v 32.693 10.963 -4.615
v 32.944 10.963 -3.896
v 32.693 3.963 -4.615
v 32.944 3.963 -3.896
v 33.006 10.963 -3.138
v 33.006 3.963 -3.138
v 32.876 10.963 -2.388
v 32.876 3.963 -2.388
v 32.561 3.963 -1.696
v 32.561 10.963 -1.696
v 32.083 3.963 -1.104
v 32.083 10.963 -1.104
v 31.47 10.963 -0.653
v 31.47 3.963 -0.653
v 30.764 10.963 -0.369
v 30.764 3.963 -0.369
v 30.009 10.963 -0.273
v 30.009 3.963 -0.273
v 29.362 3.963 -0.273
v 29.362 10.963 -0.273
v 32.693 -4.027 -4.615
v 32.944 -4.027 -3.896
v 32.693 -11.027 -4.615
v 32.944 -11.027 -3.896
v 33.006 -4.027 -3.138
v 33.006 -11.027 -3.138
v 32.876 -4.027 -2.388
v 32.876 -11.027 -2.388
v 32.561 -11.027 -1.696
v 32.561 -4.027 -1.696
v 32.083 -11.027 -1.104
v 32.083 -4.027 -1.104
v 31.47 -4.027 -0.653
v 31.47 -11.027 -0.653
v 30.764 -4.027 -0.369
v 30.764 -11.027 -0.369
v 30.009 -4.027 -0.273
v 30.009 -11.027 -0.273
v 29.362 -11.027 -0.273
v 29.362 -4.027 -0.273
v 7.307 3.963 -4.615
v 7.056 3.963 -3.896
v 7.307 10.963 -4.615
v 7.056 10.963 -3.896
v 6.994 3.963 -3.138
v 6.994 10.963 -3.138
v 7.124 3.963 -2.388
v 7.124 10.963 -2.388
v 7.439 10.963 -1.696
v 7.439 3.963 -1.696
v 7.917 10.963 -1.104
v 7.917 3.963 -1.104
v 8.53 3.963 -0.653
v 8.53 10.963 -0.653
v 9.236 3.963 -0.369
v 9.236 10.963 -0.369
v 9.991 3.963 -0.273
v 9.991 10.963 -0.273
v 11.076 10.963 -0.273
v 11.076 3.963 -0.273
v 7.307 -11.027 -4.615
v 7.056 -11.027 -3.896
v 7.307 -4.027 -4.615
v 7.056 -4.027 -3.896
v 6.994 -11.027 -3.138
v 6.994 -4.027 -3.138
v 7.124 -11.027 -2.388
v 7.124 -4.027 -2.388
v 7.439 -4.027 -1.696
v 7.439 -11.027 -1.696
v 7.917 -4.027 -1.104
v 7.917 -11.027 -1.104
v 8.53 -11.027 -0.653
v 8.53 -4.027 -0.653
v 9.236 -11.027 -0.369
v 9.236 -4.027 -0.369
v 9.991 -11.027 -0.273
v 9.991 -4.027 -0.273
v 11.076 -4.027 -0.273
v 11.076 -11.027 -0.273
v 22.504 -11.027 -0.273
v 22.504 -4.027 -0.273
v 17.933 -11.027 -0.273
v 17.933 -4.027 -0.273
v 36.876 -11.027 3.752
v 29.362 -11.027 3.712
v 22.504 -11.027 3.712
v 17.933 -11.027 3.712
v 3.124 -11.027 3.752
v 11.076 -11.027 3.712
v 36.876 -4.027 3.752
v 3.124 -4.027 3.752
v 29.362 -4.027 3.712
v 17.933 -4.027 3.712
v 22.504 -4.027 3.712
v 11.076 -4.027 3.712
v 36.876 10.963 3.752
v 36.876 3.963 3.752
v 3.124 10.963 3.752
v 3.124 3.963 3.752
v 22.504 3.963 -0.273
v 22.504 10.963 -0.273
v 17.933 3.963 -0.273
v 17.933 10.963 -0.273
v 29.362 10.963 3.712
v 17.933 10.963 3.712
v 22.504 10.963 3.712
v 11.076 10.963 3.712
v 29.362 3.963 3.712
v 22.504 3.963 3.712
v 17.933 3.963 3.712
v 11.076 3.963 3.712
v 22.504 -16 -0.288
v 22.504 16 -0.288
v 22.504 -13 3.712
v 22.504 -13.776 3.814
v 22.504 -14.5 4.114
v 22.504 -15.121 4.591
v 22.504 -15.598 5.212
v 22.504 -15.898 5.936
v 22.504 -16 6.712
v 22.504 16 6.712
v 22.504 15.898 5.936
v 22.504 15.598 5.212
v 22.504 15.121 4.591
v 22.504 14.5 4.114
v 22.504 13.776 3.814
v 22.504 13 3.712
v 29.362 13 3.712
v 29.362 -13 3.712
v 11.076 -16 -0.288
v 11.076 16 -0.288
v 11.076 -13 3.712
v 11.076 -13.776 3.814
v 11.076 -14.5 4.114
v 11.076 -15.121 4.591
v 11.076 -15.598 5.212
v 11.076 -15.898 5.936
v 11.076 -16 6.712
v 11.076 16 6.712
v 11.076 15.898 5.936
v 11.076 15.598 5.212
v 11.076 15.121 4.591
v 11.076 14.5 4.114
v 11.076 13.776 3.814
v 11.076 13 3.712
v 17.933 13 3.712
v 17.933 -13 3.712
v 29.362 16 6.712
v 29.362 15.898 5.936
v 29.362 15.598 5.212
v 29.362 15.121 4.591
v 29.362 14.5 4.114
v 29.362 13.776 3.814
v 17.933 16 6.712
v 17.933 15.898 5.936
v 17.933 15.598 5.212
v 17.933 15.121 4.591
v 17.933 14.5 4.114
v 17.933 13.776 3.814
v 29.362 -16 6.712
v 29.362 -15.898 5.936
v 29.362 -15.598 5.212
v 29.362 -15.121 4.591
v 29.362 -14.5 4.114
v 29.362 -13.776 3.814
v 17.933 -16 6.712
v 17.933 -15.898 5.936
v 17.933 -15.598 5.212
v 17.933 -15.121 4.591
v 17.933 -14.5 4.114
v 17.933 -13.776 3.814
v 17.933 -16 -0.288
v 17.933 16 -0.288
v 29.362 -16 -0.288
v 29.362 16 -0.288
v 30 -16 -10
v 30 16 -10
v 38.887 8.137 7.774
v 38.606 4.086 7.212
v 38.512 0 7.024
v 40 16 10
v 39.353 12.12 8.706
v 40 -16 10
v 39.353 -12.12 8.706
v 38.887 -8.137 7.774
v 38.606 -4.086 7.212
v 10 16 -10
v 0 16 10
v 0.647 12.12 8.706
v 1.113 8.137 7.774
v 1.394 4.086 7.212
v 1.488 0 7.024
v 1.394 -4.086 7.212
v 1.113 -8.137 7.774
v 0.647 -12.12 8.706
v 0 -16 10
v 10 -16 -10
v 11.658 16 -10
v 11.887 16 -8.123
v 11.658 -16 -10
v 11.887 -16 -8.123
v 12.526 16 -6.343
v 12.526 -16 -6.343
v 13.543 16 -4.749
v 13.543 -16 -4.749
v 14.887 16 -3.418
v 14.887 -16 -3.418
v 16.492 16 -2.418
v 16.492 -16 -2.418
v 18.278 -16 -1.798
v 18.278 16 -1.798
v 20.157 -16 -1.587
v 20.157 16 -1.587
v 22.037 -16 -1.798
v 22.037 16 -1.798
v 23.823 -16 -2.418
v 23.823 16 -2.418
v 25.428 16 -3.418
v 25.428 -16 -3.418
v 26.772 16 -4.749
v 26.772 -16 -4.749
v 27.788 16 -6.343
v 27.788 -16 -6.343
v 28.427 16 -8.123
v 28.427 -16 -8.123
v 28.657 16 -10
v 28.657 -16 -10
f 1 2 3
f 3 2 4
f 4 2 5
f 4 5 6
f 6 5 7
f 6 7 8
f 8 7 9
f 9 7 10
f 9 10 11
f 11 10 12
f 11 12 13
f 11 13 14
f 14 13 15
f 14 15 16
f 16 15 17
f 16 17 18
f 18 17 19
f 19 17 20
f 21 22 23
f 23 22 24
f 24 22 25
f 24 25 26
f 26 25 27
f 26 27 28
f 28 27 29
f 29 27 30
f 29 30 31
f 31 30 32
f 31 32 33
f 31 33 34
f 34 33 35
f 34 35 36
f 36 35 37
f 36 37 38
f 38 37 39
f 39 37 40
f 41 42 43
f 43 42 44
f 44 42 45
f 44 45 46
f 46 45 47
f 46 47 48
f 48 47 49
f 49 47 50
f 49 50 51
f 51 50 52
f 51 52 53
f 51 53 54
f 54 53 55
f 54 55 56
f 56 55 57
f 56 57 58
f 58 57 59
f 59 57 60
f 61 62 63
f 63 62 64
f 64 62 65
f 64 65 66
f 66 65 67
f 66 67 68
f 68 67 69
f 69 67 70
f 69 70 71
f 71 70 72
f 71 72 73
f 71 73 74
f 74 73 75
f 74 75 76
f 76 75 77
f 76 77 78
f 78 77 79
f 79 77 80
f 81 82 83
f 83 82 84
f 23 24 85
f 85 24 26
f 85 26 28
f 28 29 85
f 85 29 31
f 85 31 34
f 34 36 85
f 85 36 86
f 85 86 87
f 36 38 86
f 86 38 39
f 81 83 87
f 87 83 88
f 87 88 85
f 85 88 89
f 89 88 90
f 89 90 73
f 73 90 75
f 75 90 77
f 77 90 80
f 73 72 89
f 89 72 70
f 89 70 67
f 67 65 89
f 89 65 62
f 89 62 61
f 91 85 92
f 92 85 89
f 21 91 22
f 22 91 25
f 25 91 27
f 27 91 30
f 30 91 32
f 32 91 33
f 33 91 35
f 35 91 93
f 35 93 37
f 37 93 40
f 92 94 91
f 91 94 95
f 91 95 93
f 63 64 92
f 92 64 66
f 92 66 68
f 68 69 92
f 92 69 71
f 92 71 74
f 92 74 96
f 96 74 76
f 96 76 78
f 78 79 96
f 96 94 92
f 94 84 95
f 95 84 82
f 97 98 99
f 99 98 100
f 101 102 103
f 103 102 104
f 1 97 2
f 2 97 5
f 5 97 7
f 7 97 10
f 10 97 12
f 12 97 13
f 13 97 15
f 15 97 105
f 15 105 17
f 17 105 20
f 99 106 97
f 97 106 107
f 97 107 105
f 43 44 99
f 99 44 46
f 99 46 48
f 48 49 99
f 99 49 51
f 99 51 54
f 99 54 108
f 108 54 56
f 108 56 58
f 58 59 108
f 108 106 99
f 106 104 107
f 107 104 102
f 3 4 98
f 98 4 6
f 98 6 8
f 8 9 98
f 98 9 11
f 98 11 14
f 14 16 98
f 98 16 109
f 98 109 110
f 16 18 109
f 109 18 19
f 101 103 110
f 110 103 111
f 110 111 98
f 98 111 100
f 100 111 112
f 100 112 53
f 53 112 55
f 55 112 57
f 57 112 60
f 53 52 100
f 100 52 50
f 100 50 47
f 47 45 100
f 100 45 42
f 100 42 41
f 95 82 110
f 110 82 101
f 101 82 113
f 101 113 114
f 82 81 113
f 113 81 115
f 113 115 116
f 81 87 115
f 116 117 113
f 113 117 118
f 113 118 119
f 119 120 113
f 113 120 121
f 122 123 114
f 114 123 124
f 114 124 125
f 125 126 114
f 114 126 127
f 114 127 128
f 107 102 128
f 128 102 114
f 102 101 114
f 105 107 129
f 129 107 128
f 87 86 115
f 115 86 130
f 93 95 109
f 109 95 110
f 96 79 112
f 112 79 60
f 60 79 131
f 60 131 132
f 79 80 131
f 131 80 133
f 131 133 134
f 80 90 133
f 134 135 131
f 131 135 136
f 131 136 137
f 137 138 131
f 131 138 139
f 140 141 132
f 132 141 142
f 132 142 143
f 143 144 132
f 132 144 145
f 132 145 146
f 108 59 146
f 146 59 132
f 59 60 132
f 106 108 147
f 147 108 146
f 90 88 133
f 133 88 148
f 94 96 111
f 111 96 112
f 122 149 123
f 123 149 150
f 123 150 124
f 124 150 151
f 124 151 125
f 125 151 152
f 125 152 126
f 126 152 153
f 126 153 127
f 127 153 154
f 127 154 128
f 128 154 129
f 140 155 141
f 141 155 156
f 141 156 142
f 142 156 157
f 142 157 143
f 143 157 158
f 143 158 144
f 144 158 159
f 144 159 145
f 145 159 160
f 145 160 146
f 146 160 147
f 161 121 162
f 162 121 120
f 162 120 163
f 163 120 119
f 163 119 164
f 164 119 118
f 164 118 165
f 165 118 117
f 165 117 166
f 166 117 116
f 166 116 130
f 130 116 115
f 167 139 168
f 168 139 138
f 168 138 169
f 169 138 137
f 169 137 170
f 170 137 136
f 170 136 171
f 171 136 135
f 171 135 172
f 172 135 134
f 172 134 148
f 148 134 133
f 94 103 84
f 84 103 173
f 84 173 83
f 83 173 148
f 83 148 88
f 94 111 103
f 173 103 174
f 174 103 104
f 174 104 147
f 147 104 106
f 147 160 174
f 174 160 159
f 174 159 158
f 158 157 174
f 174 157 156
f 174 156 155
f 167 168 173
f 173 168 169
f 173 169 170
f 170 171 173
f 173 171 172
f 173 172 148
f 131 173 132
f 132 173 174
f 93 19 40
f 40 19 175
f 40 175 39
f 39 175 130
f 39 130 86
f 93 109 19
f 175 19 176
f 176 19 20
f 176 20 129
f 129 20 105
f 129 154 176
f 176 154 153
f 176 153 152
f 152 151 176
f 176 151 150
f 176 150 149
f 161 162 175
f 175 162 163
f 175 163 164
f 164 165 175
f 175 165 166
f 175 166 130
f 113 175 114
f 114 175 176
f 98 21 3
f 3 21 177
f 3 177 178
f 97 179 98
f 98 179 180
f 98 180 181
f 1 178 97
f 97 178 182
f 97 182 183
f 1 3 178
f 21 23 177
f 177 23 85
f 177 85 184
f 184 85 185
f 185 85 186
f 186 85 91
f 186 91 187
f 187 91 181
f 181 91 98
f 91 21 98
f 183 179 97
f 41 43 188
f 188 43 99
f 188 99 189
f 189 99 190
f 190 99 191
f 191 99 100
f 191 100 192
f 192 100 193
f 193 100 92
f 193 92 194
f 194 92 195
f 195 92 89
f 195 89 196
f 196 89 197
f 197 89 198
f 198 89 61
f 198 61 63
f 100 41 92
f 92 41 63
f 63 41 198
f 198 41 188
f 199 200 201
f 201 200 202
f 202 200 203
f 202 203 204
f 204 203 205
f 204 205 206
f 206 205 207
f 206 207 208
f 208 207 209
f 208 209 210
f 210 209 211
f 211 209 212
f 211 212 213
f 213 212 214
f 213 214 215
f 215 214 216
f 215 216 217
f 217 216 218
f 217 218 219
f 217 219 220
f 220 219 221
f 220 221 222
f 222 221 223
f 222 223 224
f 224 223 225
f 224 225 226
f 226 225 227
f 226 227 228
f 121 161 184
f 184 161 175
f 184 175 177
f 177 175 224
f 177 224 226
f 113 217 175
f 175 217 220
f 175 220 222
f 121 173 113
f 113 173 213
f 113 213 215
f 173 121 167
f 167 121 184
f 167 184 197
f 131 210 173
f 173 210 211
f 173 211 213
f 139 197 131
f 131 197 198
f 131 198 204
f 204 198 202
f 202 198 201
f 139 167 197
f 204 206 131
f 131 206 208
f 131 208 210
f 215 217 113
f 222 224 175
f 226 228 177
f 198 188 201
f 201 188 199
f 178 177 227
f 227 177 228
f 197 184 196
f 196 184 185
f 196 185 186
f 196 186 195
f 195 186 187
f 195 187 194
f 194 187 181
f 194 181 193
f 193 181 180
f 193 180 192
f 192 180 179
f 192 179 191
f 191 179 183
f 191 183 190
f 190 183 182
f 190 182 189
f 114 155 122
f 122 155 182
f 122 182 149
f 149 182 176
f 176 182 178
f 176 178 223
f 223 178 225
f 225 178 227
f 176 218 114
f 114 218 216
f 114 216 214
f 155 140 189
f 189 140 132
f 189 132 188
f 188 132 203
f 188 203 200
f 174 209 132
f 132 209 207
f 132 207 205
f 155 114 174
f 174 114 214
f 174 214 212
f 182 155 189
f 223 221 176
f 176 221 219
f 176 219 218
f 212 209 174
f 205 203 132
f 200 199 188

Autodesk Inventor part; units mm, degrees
ref_plane "YZ Plane" through (0, 0, 0) normal (1, 0, 0) x (0, 1, 0)
ref_plane "XZ Plane" through (0, 0, 0) normal (0, 1, 0) x (-1, 0, 0)
ref_plane "XY Plane" through (0, 0, 0) normal (0, 0, 1) x (1, 0, 0)
sketch "Sketch1" plane through (0, 0, 0) normal (1, 0, 0) x (0, 1, 0)
  line L0 (16, 10) -> (-16, 10)
  line L1 (-16, 10) -> (-16, -10)
  line L2 (-16, -10) -> (16, -10)
  line L3 (16, -10) -> (16, 10)
  line L4 (16, 10) -> (-16, -10) construction
  line L5 (-16, 10) -> (16, -10) construction
  point P0 (0, 0)
  dimension "d0" = 32
  dimension "d1" = 20
extrude "Extrusion1" add sketch "Sketch1" along normal blind 40
sketch "Sketch2" plane through (40, 0, 0) normal (1, 0, 0) x (0, 0, -1)
  line L0 (-10, 16) -> (-10, -16) projected
  line L1 (-10, 16) -> (-10, -16)
  arc A0 (-10, -16) -> (-10, 16) centre (-51.5241, 0) ccw
  point P0 (0, 0)
  dimension "d4" = 44.5
extrude "Extrusion2" cut sketch "Sketch2" against normal through all
sketch "Sketch3" plane through (0, 16, -10) normal (0, 1, 0) x (1, 0, 0)
  line L0 (11.6574, 0.0872) -> (28.6574, 0.0872)
  arc A0 (11.6574, 0.0872) -> (28.6574, 0.0872) centre (20.1574, 0.0872) ccw
  line L1 (0, -20) -> (0, 0) projected
  line L2 (10, 0) -> (0, -20)
  line L3 (0, -20) -> (0, 0)
  line L4 (0, 0) -> (10, 0)
  line L5 (40, 0) -> (40, -20) projected
  line L6 (30, 0) -> (40, -20)
  line L7 (40, -20) -> (40, 0)
  line L8 (30, 0) -> (40, 0)
  line L9 (0, 0) -> (40, 0) projected
  point P0 (0, -10)
  dimension "d8" = 17
  dimension "d36" = 10
  dimension "d37" = 10
extrude "Extrusion3" cut sketch "Sketch3" against normal through all
sketch "Sketch6" plane through (20.1574, 16, -10.0872) normal (0, 1, 0) x (1, 0, 0)
  line L0 (8.4996, -0.0872) -> (9.8426, -0.0872) projected
  line L1 (-9.0815, -13.7992) -> (-2.2244, -13.7992)
  line L2 (-2.2244, -13.7992) -> (-2.2244, -9.7992)
  line L3 (-2.2244, -9.7992) -> (-9.0815, -9.7992)
  line L4 (-9.0815, -9.7992) -> (-9.0815, -13.7992)
  line L5 (9.2042, -13.7992) -> (2.3471, -13.7992)
  line L6 (2.3471, -13.7992) -> (2.3471, -9.7992)
  line L7 (2.3471, -9.7992) -> (9.2042, -9.7992)
  line L8 (9.2042, -9.7992) -> (9.2042, -13.7992)
  point P0 (-20.1574, -10.0872)
  point P1 (-8.4996, -0.0872)
  dimension "d39" = 4
extrude "Extrusion4" cut sketch "Sketch6" against normal through all
fillet "Fillet3" radius 3 4 edges at (14.5045, -16, 3.7121) (25.933, -16, 3.7121) (14.5045, 16, 3.7121) (25.933, 16, 3.7121)
sketch "Sketch7" plane through (10, -16, -10) normal (-0.8944272, 0, -0.4472136) x (-0.4472136, 0, 0.8944272)
  line L0 (15.3752, 4.9726) -> (10.8752, 4.9726)
  line L1 (10.8752, 4.9726) -> (10.8752, 11.9726)
  line L2 (10.8752, 11.9726) -> (15.3752, 11.9726)
  line L3 (15.3752, 11.9726) -> (15.3752, 4.9726)
  line L4 (15.3752, 26.9631) -> (10.8752, 26.9631)
  line L5 (10.8752, 26.9631) -> (10.8752, 19.9631)
  line L6 (10.8752, 19.9631) -> (15.3752, 19.9631)
  line L7 (15.3752, 19.9631) -> (15.3752, 26.9631)
  point P0 (13.4164, 16)
  dimension "d40" = 4.5
  dimension "d41" = 7
  dimension "d43" = 7
sketch "Sketch8" plane through (0, -16, 10) normal (0, -1, 0) x (1, 0, 0)
  line L0 (-11.5037, -8.1401) -> (42.8743, -8.1401)
  line L1 (0, 0) -> (40, 0) projected
  point P0 (0, -10)
sweep "Sweep2" cut profiles "Sketch7" path "Sketch8" path curves L0
fillet "Fillet4" radius 3 4 edges at (5.1365, -7.5274, -0.2729) (5.1365, 7.4631, -0.2729) (34.8635, -7.5274, -0.2729) (34.8635, 7.4631, -0.2729)
properties part number "VHF_platform"
